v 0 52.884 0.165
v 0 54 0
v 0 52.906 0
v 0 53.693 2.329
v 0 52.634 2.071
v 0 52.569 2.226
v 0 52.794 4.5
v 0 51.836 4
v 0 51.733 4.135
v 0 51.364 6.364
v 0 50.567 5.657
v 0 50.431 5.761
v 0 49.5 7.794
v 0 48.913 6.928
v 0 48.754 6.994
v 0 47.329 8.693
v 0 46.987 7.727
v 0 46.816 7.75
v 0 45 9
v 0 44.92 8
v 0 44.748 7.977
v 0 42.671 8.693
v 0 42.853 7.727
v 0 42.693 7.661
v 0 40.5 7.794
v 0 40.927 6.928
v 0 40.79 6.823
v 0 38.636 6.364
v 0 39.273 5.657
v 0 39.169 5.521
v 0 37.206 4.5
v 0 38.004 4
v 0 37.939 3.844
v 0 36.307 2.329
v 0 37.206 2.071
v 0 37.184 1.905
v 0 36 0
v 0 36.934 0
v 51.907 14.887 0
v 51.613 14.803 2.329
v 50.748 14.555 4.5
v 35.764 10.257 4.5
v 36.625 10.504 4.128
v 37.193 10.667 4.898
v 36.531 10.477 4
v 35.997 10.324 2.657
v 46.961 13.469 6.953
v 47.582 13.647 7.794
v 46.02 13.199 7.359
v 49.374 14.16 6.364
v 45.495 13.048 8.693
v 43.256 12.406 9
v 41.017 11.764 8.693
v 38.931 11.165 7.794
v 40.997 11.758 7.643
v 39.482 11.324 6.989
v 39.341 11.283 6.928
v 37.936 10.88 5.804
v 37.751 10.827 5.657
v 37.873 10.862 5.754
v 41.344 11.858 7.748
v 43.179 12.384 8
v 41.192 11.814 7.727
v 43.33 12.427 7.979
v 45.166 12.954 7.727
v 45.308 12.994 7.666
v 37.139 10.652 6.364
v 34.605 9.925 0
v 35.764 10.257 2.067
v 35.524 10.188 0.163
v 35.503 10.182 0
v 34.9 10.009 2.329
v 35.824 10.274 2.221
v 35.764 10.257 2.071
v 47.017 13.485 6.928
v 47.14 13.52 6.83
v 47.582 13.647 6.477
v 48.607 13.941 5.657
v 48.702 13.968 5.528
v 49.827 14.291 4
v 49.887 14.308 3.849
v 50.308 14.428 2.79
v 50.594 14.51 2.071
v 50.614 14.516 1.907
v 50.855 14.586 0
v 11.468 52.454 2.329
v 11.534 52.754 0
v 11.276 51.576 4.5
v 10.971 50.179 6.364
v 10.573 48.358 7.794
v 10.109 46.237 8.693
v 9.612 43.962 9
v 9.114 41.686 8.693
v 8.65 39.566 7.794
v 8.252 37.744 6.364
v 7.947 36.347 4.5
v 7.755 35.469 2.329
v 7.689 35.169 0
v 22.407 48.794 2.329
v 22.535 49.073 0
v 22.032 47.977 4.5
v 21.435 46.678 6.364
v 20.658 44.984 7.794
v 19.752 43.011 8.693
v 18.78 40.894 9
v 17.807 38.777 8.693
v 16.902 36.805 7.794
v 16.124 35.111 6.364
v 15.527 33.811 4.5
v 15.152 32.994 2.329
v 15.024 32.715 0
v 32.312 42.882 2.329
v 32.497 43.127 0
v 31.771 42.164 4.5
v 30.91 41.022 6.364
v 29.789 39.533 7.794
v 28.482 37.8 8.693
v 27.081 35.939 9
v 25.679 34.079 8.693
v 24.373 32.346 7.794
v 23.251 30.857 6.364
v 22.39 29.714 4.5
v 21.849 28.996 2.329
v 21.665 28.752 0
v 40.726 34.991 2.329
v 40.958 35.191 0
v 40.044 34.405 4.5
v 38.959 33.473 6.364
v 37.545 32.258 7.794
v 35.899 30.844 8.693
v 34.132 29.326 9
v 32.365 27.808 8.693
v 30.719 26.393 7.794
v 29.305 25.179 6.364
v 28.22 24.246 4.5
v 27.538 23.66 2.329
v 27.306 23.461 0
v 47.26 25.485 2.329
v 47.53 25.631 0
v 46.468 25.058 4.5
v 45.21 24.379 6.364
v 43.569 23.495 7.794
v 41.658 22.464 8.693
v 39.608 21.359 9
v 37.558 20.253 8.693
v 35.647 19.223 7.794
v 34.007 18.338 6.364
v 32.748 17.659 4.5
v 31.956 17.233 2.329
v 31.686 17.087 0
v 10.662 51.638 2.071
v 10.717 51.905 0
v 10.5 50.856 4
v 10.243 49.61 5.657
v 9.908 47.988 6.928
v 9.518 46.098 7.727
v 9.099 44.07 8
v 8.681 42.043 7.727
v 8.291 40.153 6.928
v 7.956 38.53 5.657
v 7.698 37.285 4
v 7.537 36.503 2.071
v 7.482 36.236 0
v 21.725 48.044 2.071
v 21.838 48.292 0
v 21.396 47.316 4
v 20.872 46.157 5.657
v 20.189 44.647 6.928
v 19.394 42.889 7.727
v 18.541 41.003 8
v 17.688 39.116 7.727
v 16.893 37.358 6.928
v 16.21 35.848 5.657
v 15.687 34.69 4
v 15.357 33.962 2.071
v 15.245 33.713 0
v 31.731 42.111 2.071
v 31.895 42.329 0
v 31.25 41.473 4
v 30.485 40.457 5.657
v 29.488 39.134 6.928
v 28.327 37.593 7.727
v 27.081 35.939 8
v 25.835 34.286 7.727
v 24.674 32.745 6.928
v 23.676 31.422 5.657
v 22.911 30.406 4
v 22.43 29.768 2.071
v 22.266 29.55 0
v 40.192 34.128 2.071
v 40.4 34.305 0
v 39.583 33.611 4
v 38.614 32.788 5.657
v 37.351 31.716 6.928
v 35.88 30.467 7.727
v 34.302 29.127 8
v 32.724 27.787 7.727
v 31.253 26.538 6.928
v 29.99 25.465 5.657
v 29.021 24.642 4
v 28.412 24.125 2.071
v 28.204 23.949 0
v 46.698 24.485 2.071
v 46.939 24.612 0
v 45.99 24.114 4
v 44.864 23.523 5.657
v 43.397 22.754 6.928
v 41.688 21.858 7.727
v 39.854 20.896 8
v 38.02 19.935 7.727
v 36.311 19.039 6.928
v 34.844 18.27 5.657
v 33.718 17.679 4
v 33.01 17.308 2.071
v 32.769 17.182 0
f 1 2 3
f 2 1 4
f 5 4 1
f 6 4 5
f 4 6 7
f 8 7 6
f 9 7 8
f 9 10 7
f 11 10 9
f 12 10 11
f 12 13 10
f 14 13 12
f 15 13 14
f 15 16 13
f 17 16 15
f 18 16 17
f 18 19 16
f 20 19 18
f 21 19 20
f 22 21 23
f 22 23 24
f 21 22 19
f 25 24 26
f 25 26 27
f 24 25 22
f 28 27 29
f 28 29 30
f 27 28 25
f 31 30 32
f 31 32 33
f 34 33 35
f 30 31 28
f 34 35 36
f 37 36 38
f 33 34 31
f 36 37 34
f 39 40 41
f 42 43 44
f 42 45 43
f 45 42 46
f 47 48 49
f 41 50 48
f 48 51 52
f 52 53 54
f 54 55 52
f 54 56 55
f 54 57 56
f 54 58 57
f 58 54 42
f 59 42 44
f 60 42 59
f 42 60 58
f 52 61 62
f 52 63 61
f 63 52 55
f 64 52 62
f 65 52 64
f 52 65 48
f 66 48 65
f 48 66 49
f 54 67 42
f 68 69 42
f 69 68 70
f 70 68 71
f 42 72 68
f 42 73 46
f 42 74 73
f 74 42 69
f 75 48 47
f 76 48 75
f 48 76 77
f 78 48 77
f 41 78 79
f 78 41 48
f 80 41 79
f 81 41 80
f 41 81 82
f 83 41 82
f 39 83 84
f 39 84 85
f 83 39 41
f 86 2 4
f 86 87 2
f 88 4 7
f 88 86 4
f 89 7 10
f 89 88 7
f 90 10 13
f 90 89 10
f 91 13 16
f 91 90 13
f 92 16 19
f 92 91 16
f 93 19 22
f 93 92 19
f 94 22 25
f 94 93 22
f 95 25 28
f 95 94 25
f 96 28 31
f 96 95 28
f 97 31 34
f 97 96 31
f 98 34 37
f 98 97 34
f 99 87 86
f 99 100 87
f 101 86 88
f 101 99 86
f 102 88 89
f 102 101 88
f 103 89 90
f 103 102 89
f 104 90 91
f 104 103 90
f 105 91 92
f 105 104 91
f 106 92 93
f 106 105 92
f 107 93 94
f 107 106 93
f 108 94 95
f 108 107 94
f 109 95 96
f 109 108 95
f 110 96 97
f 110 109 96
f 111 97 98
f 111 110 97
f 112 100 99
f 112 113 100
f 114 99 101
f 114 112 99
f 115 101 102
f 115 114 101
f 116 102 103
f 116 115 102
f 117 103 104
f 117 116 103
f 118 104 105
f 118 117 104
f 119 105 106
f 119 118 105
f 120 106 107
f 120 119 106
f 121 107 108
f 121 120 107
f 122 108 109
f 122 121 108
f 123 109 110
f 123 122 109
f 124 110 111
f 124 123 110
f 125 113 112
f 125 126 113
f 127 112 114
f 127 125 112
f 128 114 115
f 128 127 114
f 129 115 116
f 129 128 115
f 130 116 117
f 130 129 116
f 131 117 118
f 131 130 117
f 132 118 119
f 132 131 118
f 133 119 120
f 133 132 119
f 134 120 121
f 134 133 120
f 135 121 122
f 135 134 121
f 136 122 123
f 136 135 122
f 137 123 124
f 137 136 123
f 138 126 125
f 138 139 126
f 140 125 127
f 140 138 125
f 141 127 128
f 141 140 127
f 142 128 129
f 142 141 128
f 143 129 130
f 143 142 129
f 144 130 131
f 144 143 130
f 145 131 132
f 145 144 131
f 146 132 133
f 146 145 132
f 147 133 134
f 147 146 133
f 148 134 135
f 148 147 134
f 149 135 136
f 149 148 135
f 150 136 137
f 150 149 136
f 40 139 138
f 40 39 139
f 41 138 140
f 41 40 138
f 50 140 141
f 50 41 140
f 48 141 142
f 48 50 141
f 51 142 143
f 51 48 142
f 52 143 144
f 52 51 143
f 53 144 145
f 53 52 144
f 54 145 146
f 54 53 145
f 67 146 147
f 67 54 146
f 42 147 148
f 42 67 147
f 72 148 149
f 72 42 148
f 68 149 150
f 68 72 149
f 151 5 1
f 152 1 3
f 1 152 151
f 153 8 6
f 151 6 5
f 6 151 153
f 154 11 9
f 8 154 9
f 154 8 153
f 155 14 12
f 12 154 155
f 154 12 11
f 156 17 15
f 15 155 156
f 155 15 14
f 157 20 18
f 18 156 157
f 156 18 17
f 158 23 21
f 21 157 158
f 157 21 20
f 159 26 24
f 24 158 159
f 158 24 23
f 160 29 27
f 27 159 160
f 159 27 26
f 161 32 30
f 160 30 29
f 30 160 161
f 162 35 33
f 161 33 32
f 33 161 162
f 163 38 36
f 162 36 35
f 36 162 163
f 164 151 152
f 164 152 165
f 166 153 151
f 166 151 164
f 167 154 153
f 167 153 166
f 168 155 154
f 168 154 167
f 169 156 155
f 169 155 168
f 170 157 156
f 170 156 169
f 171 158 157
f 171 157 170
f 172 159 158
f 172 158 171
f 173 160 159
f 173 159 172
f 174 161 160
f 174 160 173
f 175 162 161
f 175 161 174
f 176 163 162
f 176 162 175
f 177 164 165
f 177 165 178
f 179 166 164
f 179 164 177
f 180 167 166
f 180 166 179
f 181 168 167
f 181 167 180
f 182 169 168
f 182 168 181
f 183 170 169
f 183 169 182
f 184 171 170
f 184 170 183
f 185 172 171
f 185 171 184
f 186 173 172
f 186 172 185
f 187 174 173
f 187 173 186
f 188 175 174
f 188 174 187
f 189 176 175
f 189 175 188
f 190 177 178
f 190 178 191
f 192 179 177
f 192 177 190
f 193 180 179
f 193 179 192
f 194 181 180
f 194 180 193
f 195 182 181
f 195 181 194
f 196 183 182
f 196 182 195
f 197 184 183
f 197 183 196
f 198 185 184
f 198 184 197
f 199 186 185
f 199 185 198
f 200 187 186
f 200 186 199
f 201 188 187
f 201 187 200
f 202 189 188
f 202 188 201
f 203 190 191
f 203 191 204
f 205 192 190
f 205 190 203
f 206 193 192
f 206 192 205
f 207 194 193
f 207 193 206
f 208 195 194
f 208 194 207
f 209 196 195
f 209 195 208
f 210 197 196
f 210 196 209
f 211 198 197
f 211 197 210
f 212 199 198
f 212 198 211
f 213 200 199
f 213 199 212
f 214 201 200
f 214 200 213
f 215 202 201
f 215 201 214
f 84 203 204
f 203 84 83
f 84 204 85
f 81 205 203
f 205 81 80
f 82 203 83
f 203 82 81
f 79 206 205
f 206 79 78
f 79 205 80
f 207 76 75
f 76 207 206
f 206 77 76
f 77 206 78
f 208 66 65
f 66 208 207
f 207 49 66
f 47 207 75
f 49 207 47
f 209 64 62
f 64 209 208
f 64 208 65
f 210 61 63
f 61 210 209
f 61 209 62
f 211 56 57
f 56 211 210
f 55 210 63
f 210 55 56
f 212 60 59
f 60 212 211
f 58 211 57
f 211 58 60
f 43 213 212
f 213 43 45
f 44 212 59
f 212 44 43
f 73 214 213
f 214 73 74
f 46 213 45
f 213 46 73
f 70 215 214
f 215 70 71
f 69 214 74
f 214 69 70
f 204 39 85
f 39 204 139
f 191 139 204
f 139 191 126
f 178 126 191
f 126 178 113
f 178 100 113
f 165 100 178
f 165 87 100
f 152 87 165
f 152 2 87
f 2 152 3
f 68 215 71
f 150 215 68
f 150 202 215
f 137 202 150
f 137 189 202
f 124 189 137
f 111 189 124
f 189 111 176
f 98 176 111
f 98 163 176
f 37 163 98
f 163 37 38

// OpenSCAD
// file: ../build_environments.scad
// build_environments.scad: modules to build level sections
//

module pool(diameter=10.0, wall_height=2.0, step_width=3.0, connections=[])
{
    difference() {
        union() {
        difference() {
            cylinder(h=0.5,r1=diameter+step_width,r2=diameter+step_width,$fn=48);
            translate([0,0,-0.1])
                cylinder(h=0.7,r1=diameter,r2=diameter,$fn=48);
        }
        difference() {
            cylinder(h=wall_height,r1=diameter+step_width+1.0,r2=diameter+step_width+1.0,$fn=48);
            translate([0,0,-0.1])
                cylinder(h=wall_height+0.2,r1=diameter+step_width,r2=diameter+step_width,$fn=48);
        }
        }
    
        for (c = connections)
        {
            rotate([0,90,0]) {
                angle = atan2(c[1],c[0]);
                rotate([-angle,0,0]) {
                    cylinder(h=diameter+5.0,r1=c[2],r2=c[2],$fn=48);
                }
            }
        }
    }
}

module straight(length=10.0, width=2.0, dy1=0.0, dy2=0.0, dz=0.0)
{
    dims = [0, 0, 0, 0, 0, (dz/length)];
    matrix = [
        [ 1, dims[0], dims[1], 0 ],
        [ dims[2], 1, dims[4], 0 ],
        [ dims[5], dims[3], 1, 0 ],
        [ 0, 0, 0, 1 ]
    ];
    multmatrix(matrix)
    difference() {
        translate([dy1,0,0])
        union() {
            rotate([0,90,0]) {
                difference() {
                    cylinder(h=(length-dy1-dy2),r1=width+1.0,r2=width+1.0,$fn=24);
                    translate([0,0,-0.1])
                        cylinder(h=(length-dy1-dy2+0.2),r1=width,r2=width,$fn=24);
                }
                difference() {
                    cylinder(h=1.0,r1=width+2.0,r2=width+2.0,$fn=24);
                    translate([0,0,-0.1])
                        cylinder(h=1.2,r1=width,r2=width,$fn=24);
                }
                translate([0,0,(length-dy1-dy2)-1.0]) {
                    difference() {
                        cylinder(h=1.0,r1=width+2.0,r2=width+2.0,$fn=24);
                        translate([0,0,-0.1])
                            cylinder(h=1.2,r1=width,r2=width,$fn=24);
                    }
                }
            }
        }
        translate([0,0,-(2*width+4.0)/2])
            cube([3*length,3*length,2*width+4.0],center=true);
    }
}

module curve(p0=[0,0], center=[0,0], dir=1, angle=0.0, width=2.0)
{
    radius = sqrt((p0[0]-center[0])*(p0[0]-center[0]) + (p0[1]-center[1])*(p0[1]-center[1]));
    if (dir == 0) {
        difference() {
            rotate([0,0,-90])
            difference() {
                rotate_extrude(angle = angle, convexity = 10, $fn=32)
                    translate([radius, 0, 0])
                        circle(r = width+1.0,$fn=24);
                rotate([0,0,-1.0])
                    rotate_extrude(angle = angle+2.0, convexity = 10, $fn=32)
                        translate([radius, 0, 0])
                            circle(r = width,$fn=24);
            }
            translate([0,0,-(2*width+4.0)/2])
                cube([5*radius,5*radius,2*width+4.0],center=true);
        }
    }
    else {
        difference() {
            rotate([0,0,90])
            difference() {
                rotate_extrude(angle = -angle, convexity = 10, $fn=32)
                    translate([radius, 0, 0])
                        circle(r = width+1.0,$fn=24);
                rotate([0,0,1.0])
                    rotate_extrude(angle = -angle-2.0, convexity = 10, $fn=32)
                        translate([radius, 0, 0])
                            circle(r = width,$fn=24);
            }
            translate([0,0,-(2*width+4.0)/2])
                cube([5*radius,5*radius,2*width+4.0],center=true);
        }
    }

}

// test pool
//pool(diameter=12.0000, wall_height=3.0000, step_width=3.0000, connections=[[0.0000,-26.0000,2.0000], [23.6074,0.0000,2.0000]]);

// test straight, slope
//straight(length=26.0000, width=2.0000, dy1=11.8322, dy2=6.7082, dz=0.0000);
//straight(length=29.1549, width=12.0000, dy1=0.0000, dy2=0.0000, dz=-15.0000);

// test curve
//curve(p0=[23.6074, 0.0000], center=[23.6074, 5.0000], dir=0, angle=60.1011, width=2.0000);
//curve(p0=[33.6426, 12.4219], center=[37.9771, 9.9295], dir=1, angle=120.4627, width=2.0000);
// main file
use <../build_environments.scad>;
curve(p0=[63.0773, 290.5748], center=[102.7955, 311.7283], dir=1, angle=73.9969, width=8.0000);
